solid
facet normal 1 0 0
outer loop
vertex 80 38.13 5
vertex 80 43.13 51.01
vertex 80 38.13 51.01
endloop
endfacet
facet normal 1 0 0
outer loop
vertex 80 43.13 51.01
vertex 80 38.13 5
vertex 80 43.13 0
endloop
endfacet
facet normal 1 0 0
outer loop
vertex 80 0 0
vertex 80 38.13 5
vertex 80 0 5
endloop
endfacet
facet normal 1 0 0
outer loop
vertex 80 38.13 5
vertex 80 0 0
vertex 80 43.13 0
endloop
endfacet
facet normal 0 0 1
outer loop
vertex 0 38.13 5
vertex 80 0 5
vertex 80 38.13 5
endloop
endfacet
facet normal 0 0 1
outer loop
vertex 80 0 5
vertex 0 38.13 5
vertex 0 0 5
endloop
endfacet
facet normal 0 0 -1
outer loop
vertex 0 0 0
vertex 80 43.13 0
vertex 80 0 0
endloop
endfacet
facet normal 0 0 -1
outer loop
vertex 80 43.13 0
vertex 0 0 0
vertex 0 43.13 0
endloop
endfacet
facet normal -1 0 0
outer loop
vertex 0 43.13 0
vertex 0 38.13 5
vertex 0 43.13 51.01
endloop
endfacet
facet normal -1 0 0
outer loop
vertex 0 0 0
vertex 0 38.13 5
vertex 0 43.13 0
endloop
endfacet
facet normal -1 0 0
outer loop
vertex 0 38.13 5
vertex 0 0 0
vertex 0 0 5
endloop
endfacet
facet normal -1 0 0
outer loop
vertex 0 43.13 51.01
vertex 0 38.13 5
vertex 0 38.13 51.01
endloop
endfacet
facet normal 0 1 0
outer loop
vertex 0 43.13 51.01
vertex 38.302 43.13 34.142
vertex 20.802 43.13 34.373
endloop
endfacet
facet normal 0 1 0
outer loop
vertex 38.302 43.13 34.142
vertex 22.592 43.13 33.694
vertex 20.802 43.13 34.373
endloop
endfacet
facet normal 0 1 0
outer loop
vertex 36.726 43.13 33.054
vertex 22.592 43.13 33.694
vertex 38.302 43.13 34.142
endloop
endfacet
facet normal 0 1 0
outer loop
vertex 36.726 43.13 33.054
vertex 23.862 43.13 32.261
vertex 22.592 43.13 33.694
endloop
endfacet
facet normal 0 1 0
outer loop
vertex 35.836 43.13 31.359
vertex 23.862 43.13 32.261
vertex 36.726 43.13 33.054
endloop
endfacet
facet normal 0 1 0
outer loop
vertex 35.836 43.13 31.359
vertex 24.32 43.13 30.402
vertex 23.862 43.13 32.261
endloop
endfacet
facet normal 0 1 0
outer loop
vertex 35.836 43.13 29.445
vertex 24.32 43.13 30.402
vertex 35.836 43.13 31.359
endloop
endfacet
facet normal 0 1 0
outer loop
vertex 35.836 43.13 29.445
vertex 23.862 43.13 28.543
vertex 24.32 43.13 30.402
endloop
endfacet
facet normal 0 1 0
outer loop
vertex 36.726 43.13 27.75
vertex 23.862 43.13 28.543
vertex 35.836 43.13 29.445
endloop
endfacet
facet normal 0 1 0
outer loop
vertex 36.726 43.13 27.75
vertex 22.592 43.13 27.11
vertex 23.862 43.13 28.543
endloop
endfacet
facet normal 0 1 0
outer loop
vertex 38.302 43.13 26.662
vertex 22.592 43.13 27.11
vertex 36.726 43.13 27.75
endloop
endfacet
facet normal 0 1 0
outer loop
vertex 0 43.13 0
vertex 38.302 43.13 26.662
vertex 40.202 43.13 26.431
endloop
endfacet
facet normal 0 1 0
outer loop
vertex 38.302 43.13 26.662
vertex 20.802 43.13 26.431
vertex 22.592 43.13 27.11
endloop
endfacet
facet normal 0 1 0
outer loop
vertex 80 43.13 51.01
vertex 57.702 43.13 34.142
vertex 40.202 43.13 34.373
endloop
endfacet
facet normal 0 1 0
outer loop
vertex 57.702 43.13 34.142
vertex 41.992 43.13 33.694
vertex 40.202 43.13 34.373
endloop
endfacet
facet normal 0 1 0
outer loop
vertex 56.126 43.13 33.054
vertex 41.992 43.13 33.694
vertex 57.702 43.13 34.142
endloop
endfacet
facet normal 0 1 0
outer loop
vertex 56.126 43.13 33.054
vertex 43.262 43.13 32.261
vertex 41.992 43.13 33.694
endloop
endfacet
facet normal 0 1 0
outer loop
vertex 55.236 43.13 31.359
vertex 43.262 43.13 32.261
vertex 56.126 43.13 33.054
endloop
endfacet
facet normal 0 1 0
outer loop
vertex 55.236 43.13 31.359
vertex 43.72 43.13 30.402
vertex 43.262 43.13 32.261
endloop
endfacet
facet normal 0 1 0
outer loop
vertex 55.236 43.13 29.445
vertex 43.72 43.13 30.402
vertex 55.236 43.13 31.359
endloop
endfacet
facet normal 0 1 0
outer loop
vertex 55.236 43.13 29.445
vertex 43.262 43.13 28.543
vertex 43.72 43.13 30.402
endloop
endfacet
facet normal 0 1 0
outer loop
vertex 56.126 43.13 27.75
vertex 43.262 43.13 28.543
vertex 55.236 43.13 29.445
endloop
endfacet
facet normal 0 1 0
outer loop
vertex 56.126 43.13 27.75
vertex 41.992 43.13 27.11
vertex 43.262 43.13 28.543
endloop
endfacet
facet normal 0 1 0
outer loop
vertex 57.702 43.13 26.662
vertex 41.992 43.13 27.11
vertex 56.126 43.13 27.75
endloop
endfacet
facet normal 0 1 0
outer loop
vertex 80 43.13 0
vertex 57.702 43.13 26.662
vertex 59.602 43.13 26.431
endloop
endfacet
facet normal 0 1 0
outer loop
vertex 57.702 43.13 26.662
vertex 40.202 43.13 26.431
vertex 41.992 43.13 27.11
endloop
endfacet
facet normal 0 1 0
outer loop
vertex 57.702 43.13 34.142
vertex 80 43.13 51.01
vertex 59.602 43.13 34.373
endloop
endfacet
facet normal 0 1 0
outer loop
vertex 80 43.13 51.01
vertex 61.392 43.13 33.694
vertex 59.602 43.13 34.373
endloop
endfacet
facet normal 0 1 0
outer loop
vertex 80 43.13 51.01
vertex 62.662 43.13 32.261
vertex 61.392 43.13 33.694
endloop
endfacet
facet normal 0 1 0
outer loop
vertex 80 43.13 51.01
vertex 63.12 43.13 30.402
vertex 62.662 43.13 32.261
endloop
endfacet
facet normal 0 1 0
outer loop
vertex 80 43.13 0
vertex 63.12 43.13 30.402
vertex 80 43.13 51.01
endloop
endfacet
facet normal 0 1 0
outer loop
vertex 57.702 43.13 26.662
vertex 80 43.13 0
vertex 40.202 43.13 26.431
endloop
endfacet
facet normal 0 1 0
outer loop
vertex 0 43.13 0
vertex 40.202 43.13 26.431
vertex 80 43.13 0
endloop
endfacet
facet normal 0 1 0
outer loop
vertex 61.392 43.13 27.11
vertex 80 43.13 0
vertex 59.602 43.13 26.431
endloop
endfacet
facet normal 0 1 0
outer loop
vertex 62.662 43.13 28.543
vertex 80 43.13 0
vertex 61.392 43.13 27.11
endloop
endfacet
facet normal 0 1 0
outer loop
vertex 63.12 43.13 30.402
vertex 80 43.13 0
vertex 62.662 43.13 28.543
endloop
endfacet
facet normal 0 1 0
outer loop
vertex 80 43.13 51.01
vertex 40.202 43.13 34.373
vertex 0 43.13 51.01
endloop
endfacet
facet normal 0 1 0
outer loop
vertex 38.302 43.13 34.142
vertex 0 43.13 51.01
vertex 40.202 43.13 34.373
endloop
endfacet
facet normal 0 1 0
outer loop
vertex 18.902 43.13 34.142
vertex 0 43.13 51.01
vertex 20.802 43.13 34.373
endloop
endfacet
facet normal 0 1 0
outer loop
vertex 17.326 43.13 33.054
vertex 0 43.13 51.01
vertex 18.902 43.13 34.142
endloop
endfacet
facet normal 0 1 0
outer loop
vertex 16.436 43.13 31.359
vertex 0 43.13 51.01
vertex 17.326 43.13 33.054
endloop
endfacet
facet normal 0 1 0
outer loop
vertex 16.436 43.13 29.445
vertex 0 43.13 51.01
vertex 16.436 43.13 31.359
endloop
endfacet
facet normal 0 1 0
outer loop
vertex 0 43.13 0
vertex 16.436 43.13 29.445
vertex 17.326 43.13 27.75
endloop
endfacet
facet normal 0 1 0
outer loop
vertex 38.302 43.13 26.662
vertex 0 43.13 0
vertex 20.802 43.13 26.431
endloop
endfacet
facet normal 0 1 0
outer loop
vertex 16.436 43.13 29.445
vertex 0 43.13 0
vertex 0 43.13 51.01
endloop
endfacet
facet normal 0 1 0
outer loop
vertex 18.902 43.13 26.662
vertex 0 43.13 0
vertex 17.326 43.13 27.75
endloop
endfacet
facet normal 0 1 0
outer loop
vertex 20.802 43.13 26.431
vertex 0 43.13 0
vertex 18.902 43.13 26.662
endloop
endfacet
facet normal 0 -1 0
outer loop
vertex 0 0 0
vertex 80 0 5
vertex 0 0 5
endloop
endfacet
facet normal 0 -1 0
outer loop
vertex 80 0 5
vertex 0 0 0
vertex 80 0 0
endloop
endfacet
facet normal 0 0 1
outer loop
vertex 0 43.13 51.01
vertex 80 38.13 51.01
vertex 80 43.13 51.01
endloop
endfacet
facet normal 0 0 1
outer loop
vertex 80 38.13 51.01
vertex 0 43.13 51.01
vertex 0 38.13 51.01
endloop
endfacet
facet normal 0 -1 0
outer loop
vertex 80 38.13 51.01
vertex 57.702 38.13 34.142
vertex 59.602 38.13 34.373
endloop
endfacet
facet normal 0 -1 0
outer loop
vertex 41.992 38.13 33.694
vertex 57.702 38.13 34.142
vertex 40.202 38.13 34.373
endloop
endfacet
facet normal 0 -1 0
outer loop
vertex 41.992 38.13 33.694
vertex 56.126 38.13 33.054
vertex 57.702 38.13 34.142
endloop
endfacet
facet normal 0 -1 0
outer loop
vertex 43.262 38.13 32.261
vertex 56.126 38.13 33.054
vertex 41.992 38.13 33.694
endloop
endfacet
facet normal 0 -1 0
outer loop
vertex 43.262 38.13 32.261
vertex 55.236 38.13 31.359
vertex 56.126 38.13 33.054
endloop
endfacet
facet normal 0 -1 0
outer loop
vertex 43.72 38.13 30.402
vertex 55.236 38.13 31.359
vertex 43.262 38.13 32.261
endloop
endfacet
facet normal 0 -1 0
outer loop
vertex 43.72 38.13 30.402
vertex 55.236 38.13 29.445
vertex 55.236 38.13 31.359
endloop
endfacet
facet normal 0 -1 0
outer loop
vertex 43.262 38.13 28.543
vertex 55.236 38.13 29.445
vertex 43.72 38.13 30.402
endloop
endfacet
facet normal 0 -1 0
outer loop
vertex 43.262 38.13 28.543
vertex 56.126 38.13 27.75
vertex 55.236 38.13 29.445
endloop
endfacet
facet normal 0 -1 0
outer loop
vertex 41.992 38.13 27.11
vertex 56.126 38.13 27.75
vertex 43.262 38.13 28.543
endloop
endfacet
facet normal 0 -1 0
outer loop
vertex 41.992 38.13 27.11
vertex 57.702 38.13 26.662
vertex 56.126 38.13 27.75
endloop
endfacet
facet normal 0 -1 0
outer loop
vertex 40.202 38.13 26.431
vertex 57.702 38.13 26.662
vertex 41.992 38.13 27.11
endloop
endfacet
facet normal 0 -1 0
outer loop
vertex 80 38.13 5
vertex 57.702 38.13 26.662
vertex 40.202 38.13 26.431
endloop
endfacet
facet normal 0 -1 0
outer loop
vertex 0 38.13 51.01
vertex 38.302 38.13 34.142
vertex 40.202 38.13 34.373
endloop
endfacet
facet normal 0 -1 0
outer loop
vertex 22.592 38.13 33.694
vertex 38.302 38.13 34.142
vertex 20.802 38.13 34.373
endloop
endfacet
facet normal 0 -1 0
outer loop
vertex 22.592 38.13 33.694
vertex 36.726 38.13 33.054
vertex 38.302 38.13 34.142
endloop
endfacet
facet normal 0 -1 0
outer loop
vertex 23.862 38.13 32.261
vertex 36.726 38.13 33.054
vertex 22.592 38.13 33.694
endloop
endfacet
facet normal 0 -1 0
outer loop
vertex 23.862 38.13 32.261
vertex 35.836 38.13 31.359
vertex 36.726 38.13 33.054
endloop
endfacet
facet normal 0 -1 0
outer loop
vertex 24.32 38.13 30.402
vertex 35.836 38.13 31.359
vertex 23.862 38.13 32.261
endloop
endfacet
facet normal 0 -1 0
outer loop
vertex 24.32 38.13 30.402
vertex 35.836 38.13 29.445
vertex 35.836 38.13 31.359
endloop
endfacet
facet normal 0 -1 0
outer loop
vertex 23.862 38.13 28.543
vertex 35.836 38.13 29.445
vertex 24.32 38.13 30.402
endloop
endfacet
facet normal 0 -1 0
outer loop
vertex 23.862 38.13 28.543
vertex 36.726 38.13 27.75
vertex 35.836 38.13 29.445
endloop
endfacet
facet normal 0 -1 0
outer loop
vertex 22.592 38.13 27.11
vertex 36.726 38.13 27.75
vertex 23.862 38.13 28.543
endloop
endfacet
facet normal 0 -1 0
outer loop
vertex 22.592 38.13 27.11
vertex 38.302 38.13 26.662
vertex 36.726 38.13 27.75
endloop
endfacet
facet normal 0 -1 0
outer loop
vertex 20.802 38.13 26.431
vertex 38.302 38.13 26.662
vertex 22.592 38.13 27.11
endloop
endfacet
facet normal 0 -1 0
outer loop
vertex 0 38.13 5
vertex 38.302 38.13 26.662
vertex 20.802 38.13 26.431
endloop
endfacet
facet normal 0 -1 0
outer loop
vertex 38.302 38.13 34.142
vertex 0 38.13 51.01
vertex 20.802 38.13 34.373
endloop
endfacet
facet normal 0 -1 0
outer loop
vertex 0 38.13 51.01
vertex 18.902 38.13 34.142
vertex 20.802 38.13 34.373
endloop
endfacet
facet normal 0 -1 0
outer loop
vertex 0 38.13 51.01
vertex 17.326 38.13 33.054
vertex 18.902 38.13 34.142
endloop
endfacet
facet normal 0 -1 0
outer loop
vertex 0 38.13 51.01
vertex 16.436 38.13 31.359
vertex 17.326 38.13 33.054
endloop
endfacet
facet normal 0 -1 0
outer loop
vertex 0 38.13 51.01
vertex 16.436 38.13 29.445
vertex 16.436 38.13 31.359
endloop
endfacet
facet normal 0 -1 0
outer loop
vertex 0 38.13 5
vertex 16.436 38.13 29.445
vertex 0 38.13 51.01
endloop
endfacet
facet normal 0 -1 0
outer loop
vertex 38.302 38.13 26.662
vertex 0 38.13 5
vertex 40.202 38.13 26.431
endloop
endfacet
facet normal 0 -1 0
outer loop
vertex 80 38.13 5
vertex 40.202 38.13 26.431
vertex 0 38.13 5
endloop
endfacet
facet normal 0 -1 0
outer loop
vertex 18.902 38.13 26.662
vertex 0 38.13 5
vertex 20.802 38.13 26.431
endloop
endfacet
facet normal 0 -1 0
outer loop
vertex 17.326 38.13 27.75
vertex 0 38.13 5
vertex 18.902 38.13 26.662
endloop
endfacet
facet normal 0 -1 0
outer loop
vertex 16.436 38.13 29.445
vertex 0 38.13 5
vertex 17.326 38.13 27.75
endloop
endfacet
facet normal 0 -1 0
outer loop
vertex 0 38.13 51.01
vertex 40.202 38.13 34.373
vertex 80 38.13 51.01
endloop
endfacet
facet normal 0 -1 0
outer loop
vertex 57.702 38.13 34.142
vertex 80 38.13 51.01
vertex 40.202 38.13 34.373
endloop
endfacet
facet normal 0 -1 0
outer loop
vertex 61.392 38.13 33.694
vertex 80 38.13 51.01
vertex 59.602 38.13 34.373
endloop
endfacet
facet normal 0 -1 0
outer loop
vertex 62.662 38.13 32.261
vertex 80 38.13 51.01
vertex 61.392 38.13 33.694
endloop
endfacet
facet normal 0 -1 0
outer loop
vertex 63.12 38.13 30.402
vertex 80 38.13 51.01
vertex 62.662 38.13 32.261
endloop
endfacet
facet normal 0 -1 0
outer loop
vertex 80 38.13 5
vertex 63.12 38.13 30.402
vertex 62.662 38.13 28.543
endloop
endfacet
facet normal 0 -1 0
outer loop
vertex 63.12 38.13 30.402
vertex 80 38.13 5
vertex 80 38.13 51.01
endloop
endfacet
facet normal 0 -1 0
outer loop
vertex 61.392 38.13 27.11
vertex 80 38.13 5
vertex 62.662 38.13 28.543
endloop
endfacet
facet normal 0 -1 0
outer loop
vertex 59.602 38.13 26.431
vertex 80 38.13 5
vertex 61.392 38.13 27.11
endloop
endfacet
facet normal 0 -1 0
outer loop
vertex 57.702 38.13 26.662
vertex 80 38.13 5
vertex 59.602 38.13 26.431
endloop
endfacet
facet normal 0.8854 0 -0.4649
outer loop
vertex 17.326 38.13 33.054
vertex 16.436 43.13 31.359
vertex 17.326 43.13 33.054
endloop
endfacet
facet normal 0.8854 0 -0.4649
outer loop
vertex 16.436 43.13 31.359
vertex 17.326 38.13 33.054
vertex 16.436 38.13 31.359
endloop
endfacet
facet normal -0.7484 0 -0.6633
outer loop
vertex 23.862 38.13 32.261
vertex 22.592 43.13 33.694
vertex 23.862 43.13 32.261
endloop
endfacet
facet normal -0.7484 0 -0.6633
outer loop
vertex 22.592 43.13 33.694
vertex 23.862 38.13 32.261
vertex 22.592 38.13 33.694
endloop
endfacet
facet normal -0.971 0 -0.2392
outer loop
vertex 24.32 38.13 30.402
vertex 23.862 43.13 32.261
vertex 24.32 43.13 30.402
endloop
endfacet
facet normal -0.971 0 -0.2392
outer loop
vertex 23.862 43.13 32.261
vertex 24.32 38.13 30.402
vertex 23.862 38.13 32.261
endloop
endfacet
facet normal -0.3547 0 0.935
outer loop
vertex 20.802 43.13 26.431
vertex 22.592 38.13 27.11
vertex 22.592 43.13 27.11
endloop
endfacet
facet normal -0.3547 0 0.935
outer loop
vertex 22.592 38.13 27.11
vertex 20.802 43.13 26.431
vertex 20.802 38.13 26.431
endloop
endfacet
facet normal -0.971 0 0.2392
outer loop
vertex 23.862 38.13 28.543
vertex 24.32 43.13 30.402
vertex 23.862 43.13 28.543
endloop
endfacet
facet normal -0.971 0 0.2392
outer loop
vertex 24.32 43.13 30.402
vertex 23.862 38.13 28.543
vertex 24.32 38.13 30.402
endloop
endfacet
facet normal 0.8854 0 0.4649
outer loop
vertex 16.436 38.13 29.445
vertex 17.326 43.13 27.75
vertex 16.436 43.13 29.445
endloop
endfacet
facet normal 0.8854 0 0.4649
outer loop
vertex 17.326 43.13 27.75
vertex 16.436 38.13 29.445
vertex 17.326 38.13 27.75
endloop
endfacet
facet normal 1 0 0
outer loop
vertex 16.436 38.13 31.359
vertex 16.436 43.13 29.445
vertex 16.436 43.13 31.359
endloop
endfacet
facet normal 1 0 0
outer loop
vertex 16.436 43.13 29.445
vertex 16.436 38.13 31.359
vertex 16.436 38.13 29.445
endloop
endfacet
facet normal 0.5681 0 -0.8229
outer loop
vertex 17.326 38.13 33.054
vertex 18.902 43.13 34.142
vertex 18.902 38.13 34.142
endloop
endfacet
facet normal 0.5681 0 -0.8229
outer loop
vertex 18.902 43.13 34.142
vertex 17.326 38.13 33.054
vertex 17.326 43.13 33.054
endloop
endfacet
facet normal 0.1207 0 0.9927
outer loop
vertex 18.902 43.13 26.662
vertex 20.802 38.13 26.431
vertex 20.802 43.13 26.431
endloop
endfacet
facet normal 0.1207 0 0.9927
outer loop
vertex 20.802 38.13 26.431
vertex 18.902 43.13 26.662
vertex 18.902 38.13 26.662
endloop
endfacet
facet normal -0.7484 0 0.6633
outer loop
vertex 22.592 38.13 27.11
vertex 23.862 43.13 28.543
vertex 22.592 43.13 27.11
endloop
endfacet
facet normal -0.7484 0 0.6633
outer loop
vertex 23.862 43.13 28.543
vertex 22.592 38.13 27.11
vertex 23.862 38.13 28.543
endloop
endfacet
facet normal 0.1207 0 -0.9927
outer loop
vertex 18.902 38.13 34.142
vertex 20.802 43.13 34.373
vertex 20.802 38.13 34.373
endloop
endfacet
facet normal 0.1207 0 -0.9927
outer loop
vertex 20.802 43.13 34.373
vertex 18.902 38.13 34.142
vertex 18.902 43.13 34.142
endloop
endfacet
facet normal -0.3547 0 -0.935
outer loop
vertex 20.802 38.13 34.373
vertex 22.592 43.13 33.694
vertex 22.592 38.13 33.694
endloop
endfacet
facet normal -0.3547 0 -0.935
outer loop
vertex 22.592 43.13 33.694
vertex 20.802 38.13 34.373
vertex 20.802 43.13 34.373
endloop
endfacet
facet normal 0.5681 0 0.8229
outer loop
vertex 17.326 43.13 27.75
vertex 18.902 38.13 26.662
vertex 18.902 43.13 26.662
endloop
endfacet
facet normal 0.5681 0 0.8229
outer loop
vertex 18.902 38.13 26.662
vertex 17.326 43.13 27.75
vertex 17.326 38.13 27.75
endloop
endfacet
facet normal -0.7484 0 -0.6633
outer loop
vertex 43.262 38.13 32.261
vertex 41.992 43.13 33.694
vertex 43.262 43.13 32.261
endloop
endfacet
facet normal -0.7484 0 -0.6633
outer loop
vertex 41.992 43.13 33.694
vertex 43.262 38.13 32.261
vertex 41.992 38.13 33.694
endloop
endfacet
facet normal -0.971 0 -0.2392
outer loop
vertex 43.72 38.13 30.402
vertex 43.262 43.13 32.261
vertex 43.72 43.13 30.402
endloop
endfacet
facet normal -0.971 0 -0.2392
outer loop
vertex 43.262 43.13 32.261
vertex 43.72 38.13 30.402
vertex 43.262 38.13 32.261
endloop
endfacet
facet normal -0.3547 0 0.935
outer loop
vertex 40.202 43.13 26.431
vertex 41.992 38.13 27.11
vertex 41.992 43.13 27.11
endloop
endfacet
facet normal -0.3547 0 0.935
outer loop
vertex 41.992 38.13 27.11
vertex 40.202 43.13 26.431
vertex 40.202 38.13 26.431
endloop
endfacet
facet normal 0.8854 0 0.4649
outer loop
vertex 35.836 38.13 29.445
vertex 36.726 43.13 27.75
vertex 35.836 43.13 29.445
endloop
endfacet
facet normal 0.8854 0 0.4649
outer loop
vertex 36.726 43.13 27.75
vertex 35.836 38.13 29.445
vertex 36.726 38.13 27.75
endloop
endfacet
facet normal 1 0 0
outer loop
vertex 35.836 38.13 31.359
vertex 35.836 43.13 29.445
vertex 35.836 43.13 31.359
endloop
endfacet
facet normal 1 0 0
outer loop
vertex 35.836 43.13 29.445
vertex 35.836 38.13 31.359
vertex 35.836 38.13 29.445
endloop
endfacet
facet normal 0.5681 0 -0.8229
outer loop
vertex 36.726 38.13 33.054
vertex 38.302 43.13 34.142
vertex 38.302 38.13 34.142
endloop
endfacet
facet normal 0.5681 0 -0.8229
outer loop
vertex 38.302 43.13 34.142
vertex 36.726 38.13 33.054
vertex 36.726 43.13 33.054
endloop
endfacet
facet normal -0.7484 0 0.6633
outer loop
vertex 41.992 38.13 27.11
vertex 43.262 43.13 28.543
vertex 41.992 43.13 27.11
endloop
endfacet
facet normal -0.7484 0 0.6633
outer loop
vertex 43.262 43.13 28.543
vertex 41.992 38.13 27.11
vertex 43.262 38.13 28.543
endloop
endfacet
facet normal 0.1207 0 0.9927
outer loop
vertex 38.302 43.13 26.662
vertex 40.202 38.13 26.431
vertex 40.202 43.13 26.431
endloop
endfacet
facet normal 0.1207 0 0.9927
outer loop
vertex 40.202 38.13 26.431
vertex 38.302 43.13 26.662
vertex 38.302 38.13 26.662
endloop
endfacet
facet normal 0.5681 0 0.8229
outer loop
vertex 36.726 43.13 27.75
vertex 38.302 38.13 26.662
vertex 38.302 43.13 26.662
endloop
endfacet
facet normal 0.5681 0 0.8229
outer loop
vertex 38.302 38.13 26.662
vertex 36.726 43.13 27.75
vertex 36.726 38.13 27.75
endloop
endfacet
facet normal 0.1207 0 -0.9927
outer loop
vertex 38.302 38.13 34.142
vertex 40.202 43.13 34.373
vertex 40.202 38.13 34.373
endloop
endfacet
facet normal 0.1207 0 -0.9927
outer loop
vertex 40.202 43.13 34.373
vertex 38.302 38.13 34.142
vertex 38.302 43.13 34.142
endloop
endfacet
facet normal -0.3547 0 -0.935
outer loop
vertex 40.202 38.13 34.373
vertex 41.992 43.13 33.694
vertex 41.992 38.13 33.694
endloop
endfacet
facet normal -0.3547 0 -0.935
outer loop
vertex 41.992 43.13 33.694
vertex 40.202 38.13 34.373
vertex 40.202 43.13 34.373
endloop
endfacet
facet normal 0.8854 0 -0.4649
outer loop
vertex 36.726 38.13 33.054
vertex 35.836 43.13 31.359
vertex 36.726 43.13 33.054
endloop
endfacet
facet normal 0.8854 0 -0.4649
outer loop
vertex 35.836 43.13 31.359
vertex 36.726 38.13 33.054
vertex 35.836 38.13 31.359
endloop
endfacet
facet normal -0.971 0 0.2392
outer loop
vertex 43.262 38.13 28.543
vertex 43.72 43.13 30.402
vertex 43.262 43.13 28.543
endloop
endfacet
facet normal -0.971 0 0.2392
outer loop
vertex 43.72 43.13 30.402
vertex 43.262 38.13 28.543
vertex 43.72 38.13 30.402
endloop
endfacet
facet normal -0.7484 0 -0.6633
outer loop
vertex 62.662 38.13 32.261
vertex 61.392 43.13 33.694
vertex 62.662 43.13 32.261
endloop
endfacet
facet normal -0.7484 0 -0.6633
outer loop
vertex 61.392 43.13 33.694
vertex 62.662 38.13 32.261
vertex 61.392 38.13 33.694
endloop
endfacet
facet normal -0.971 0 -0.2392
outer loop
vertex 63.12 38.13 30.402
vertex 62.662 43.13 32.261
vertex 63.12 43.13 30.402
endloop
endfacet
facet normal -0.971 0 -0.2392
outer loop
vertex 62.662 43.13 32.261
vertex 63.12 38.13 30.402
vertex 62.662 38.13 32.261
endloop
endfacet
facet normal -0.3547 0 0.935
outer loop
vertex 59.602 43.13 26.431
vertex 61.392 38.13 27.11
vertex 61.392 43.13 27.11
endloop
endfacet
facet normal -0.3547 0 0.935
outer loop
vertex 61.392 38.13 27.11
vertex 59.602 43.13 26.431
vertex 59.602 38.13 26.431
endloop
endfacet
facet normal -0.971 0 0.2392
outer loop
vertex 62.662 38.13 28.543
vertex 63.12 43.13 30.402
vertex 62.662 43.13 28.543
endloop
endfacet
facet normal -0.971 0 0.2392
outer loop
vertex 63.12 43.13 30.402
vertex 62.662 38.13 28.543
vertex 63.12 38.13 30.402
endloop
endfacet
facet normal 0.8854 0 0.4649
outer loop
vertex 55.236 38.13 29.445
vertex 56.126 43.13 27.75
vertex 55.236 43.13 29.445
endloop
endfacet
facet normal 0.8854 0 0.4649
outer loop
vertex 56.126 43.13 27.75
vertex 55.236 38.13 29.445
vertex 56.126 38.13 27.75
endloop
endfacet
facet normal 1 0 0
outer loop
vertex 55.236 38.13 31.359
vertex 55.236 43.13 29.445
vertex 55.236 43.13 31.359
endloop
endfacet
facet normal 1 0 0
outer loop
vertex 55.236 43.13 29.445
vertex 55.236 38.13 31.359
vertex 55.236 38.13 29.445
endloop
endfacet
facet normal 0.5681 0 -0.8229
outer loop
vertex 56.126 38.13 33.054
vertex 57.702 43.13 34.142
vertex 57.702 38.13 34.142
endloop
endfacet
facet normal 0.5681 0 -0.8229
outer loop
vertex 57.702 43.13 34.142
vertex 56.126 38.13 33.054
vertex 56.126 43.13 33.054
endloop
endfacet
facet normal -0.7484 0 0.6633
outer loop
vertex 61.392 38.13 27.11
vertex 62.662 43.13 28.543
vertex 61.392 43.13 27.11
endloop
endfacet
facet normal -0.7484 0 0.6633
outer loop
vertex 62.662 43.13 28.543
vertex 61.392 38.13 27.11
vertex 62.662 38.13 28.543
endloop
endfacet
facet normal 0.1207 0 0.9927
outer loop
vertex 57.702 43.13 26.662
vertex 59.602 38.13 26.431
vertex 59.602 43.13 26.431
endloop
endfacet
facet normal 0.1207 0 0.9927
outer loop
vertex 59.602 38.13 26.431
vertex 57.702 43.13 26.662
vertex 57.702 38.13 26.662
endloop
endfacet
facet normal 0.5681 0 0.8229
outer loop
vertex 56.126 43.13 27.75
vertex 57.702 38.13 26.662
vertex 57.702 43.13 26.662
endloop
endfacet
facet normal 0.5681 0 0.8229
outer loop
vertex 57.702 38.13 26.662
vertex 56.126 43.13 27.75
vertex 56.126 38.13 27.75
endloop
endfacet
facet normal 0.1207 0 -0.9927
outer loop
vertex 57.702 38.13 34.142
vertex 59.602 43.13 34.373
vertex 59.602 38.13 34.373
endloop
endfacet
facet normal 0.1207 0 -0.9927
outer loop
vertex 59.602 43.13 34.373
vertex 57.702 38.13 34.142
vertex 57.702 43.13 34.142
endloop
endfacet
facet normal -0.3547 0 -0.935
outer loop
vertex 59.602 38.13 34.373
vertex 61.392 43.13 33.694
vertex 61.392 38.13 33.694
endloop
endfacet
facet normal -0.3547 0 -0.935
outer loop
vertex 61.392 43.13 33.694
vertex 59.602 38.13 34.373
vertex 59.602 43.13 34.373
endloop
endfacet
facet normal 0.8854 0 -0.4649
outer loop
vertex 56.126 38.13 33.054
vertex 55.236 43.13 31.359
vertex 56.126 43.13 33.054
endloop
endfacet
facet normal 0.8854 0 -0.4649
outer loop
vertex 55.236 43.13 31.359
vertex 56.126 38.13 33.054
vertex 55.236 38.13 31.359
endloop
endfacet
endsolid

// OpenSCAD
/* doodle-meta {"version":1,"parameters":{"width":{"label":"Overall width","description":"Changes the body width","unit":"mm","feature":"body_width"},"depth":{"label":"Overall depth","description":"Changes the base plate depth","unit":"mm","feature":"body_depth"},"height":{"label":"Overall height","description":"Changes the vertical wall height","unit":"mm","feature":"body_height"},"thickness":{"label":"Plate thickness","description":"Thickness of both the base and the wall","unit":"mm","feature":"plate_thickness"},"hole_diameter":{"label":"Hole diameter","description":"Diameter of the mounting holes","unit":"mm","feature":"holes"},"hole_count":{"label":"Hole count","description":"Number of holes in the wall","unit":"count","feature":"holes"}},"features":{"body_width":{"kind":"dimension","axis":"x","label":"Overall width"},"body_depth":{"kind":"dimension","axis":"y","label":"Overall depth"},"body_height":{"kind":"dimension","axis":"z","label":"Overall height"},"plate_thickness":{"kind":"dimension","axis":"z","label":"Plate thickness"},"holes":{"kind":"region","label":"Mounting holes","min":[{"parameter":"hole_x_start","scale":1,"offset":0},{"parameter":"thickness","scale":1,"offset":0},{"parameter":"hole_z","scale":1,"offset":-10}],"max":[{"parameter":"hole_x_end","scale":1,"offset":0},{"parameter":"thickness","scale":1,"offset":10},{"parameter":"hole_z","scale":1,"offset":10}]}}} */

// Parameters
width = 80.0;
depth = 43.13;
height = 51.01;
thickness = 5.0;
hole_diameter = 8.0;
hole_count = 3;

// Derived dimensions
// Source centroids: u=0.254, 0.496, 0.739 → X = u*width
hole_x_start = 0.254 * width;  // ~20.3mm
hole_x_end = 0.739 * width;    // ~59.1mm
hole_spacing = (hole_x_end - hole_x_start) / (hole_count - 1);

// Source centroid v=0.404 → Z = (1-0.404)*height = 0.596*height
hole_z = (1.0 - 0.404) * height;  // ~30.4mm

eps = 0.01;

// Main design
difference() {
    // Positive body: Base plate + Vertical wall
    union() {
        // Base plate (horizontal flange)
        // Extends from Y=0 (front) to Y=depth (back)
        // Extends from Z=0 (bottom) to Z=thickness
        cube([width, depth, thickness]);
        
        // Vertical wall (back flange)
        // Extends from Y=depth-thickness to Y=depth (back)
        // Extends from Z=0 to Z=height
        translate([0, depth - thickness, 0])
            cube([width, thickness, height]);
    }
    
    // Subtractive cutters: Holes in the vertical wall
    // Holes are through-cuts along Y axis
    for (i = [0 : hole_count - 1]) {
        translate([hole_x_start + i * hole_spacing, depth - thickness/2, hole_z])
            rotate([90, 0, 0])
                cylinder(h=thickness + 2*eps, d=hole_diameter, center=true);
    }
}
